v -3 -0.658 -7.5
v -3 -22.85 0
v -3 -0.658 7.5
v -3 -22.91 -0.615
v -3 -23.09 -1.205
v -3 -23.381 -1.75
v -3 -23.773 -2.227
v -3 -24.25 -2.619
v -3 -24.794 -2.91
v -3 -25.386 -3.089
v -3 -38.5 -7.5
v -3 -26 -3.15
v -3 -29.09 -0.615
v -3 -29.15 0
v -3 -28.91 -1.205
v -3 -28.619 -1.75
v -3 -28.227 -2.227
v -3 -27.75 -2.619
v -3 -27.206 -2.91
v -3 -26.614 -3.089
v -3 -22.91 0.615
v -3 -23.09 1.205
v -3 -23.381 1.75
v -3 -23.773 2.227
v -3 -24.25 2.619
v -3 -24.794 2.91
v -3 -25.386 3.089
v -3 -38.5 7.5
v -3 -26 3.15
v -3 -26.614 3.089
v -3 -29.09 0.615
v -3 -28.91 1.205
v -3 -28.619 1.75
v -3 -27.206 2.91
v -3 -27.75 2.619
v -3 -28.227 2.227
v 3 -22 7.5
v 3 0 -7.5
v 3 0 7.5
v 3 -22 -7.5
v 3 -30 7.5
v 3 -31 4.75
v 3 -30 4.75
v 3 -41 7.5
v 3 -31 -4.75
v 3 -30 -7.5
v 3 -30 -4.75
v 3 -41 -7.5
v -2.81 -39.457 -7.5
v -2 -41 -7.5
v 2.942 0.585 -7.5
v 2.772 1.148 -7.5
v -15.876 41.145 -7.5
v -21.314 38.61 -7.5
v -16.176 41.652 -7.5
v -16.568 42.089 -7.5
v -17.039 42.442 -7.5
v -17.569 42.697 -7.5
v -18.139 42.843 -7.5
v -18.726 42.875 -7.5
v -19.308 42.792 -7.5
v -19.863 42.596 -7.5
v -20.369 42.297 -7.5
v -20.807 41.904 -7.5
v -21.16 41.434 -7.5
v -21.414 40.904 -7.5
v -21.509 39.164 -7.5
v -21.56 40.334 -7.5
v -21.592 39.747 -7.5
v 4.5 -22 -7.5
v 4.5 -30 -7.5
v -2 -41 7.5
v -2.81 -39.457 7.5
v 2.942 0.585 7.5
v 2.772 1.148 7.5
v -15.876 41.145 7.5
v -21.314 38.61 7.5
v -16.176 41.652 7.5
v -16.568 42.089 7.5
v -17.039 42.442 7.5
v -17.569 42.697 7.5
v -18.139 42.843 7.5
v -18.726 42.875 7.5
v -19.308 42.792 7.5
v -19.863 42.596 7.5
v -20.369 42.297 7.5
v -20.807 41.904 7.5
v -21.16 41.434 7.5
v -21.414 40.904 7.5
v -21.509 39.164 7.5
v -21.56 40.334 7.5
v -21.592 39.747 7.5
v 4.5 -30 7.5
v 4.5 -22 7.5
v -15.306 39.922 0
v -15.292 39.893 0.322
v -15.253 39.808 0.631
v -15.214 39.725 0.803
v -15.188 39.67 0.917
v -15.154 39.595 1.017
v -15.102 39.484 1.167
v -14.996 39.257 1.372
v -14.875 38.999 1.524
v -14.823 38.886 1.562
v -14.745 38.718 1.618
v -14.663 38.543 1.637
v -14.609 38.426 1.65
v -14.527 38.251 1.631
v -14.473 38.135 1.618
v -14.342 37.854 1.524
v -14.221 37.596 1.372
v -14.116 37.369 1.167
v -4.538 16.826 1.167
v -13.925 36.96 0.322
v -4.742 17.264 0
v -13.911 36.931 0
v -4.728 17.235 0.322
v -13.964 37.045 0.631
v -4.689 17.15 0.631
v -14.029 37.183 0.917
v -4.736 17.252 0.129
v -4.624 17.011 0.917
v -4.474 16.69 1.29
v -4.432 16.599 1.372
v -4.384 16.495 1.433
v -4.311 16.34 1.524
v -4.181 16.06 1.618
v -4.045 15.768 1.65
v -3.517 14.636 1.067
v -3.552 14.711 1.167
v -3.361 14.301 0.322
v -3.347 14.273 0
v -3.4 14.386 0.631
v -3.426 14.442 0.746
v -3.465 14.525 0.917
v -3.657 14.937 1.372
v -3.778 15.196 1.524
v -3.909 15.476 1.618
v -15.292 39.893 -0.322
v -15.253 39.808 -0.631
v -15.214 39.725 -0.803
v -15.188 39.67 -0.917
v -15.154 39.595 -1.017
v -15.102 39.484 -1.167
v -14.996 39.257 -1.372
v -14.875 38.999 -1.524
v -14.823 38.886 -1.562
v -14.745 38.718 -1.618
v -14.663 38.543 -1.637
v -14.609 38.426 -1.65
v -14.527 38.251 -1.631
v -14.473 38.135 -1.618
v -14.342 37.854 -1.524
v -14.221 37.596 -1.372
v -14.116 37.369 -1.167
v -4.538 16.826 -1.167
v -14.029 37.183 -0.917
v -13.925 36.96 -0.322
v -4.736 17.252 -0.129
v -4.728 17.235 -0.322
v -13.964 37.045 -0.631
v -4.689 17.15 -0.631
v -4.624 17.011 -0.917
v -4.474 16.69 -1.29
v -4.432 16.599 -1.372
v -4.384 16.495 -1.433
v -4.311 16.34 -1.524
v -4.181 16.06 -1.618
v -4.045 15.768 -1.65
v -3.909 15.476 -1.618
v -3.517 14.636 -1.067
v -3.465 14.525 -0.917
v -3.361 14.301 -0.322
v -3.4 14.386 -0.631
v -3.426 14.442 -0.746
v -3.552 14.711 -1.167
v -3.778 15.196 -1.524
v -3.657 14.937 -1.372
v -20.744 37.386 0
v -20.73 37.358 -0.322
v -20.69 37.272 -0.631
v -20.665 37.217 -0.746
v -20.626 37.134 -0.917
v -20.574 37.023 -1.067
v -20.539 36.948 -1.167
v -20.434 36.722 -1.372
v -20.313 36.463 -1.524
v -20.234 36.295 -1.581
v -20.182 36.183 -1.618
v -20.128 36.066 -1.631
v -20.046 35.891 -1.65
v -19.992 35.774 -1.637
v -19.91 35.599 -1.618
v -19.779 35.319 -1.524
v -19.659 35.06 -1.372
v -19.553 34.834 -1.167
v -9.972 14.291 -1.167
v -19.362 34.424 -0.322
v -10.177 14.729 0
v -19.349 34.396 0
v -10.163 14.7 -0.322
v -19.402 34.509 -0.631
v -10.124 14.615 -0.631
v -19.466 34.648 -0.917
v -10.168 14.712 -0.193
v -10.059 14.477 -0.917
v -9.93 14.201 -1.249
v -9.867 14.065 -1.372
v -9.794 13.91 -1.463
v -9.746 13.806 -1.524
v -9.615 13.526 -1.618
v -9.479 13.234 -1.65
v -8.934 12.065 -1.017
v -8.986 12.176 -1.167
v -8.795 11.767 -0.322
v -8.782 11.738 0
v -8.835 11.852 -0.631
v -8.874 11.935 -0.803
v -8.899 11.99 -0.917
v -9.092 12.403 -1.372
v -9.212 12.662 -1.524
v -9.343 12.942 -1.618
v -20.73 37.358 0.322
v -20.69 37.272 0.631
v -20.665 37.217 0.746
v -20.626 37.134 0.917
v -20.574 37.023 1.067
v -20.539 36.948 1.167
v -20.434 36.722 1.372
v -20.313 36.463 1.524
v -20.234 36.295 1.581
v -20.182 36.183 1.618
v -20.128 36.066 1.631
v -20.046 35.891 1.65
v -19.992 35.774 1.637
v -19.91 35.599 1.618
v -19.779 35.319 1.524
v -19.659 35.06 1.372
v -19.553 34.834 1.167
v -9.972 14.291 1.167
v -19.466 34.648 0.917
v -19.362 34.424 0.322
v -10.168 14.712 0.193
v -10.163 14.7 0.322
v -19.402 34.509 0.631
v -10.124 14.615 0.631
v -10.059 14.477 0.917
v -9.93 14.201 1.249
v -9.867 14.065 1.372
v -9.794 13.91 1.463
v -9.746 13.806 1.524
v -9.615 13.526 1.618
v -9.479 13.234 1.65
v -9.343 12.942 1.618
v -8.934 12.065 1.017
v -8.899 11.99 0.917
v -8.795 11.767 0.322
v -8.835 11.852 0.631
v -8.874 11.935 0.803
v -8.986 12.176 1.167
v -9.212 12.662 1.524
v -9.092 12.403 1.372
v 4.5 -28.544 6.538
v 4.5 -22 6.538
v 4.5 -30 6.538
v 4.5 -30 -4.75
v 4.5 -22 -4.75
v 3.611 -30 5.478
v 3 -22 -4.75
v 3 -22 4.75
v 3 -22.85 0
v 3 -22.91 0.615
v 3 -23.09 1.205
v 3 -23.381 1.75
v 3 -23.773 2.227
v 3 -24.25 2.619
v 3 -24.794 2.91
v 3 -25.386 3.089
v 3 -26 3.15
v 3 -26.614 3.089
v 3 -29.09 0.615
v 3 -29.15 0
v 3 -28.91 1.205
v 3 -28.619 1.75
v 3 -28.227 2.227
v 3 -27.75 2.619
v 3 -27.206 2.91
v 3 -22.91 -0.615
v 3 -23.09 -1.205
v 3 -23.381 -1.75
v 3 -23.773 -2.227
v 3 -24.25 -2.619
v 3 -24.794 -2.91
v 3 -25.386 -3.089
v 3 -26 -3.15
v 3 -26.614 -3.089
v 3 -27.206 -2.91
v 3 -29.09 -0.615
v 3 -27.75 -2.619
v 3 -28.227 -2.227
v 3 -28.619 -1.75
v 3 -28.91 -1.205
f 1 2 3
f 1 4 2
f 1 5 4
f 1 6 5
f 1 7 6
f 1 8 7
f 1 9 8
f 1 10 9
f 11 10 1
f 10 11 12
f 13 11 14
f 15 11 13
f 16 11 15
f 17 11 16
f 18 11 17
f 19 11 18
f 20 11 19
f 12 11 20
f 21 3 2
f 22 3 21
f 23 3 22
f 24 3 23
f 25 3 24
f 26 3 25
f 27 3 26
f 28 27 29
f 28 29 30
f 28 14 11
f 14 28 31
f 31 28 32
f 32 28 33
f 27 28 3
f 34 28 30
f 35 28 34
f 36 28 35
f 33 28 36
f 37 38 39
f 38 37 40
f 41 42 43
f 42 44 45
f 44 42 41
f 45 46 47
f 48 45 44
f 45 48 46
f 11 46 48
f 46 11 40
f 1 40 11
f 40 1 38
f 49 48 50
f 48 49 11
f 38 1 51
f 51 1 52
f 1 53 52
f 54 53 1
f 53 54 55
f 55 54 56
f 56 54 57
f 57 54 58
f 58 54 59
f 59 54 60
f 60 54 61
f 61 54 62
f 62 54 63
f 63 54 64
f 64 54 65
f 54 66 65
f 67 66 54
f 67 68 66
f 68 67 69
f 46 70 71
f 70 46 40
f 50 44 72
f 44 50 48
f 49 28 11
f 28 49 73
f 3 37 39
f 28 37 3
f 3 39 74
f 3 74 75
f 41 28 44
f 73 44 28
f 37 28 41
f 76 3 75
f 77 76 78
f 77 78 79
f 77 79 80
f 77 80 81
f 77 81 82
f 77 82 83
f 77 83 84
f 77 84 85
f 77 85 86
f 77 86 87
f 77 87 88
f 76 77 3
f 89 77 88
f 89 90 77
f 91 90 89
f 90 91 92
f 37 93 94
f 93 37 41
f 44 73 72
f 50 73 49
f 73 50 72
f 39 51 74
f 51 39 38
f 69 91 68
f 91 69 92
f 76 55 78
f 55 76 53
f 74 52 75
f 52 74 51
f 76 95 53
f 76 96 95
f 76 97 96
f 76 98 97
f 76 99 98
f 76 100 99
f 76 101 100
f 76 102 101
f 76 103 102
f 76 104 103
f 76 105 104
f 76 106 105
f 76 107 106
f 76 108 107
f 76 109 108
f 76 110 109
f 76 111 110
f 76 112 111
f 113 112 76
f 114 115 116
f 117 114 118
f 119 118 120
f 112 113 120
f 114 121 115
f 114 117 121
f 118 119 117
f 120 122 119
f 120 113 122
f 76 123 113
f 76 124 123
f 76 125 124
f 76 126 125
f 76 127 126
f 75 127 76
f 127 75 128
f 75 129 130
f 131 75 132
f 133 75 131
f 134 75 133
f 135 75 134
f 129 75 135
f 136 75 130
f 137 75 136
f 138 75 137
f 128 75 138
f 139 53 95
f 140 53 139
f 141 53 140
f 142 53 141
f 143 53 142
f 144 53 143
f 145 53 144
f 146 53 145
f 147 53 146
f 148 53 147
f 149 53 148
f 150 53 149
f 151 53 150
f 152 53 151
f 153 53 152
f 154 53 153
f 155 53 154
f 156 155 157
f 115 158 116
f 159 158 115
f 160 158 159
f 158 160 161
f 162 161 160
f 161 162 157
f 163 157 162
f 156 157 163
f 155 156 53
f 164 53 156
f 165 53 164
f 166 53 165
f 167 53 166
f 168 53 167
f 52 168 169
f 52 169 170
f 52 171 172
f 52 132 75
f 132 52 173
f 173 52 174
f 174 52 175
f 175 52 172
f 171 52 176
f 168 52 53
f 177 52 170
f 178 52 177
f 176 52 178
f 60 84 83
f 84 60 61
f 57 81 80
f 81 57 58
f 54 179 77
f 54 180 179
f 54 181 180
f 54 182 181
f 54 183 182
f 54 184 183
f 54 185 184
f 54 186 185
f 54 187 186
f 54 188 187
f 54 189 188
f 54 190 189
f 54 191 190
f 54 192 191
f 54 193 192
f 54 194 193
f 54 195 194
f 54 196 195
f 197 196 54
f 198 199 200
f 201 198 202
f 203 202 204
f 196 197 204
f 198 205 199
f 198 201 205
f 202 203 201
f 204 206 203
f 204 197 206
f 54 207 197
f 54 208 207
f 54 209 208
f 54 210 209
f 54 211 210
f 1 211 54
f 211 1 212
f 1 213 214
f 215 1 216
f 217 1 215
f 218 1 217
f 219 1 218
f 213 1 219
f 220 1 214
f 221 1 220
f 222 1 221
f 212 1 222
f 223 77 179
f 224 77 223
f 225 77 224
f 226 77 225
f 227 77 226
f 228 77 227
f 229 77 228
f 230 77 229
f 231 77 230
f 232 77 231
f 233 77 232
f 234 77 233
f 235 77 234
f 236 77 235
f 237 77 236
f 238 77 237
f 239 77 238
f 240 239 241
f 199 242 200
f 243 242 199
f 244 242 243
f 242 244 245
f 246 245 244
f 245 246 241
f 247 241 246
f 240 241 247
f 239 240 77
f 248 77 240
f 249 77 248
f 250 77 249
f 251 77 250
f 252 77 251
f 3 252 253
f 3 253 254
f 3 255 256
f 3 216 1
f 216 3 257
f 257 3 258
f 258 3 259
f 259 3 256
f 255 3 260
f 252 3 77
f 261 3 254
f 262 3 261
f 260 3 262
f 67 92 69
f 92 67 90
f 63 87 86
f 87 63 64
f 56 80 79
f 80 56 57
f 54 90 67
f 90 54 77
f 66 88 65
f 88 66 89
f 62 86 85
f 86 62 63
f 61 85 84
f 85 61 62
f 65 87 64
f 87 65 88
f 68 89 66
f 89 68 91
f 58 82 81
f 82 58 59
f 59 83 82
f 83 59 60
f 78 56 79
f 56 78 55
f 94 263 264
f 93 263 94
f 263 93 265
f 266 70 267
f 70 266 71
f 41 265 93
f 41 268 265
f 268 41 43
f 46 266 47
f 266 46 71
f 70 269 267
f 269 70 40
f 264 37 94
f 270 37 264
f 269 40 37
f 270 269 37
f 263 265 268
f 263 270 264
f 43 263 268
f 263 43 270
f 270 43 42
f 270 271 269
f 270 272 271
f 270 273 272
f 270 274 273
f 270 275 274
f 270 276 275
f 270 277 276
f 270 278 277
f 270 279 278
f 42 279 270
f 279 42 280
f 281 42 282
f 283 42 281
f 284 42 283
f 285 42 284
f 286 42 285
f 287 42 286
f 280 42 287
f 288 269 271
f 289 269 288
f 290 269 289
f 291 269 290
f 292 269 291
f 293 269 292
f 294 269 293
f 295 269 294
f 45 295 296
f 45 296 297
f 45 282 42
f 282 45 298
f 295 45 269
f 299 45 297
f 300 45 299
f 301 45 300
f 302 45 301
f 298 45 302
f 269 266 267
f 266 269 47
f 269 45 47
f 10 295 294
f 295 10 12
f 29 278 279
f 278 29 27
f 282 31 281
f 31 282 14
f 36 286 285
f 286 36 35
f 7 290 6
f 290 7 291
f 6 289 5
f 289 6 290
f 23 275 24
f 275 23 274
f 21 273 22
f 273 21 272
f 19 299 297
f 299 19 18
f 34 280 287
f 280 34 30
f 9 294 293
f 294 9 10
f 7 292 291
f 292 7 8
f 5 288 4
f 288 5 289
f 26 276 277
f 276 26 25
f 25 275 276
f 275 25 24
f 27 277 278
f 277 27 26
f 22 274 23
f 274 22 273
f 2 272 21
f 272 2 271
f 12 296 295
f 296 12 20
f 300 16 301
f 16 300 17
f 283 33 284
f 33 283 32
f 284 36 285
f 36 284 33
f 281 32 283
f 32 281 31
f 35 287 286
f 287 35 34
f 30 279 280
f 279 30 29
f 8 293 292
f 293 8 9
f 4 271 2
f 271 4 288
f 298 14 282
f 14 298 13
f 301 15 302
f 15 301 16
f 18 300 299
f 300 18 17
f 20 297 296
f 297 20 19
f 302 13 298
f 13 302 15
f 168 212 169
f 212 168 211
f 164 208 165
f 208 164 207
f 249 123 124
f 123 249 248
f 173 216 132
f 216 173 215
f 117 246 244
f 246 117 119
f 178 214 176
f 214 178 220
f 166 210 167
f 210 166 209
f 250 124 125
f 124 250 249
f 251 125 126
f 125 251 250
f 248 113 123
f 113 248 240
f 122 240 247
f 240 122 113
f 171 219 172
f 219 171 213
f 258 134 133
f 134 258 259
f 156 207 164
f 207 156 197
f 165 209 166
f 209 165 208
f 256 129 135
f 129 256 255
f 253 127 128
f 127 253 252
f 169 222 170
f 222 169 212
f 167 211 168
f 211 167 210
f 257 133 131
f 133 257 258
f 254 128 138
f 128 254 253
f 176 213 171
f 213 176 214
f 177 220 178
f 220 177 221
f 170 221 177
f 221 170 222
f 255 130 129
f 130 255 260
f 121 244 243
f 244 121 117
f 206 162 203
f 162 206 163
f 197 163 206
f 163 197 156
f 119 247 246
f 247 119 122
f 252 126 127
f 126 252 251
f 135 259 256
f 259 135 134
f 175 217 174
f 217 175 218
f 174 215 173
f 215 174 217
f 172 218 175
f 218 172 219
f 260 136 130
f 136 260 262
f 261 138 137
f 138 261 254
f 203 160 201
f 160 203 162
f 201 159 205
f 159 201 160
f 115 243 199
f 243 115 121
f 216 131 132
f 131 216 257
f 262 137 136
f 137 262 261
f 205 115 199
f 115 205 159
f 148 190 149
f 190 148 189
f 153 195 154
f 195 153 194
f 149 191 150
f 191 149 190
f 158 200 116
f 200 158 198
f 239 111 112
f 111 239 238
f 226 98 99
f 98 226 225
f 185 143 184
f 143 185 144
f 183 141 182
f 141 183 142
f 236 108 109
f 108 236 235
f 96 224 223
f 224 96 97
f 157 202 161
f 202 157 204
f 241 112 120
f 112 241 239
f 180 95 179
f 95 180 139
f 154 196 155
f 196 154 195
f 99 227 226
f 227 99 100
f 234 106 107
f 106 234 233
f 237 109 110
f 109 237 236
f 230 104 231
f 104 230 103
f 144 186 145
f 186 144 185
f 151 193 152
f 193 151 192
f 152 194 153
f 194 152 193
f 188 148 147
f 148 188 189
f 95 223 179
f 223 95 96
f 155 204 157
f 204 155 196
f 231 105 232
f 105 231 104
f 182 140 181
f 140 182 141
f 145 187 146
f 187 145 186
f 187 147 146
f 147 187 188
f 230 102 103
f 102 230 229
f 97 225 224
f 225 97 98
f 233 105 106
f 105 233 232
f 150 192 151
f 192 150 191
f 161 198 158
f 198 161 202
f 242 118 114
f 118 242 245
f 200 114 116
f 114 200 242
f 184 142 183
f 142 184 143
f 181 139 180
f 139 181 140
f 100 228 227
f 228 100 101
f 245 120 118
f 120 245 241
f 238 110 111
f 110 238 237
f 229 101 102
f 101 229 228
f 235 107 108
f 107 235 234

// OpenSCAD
/* 
   === RebeliX BoX ===

   LCD holder
   GNU GPL v3
   Martin Neruda <neruda@RebeliX.cz>
   http://www.RebeliX.cz
*/

//include <../../configuration.scad>
include <../../inc/functions.scad>

part_thick = 6;
part_height = 15;
base_length = profile_width + 11;

// Delka ramena pro pridelani LCD
holder_length = 44;

// Uhel natoceni drzaku
angle = 25;

$fn=32;

M6_head_offset = 8; // pro M6x14

screw_distance = 25;

// LCD HEIGHT (z lcd_case.scad)
HEIGHT=82 - 11;

module lcd_holder_base()
{
  translate([0,-base_length/2,0]) rounded_box(part_thick,base_length,part_height,5,1,0,0,0);
  
  hull()
  {
    cylinder(d=part_thick,h=part_height,center=true);
    rotate([0,0,angle]) translate([0,holder_length,0]) cylinder(d=part_thick,h=part_height,center=true);
  }
  
  // Prichyceni na profil
  translate([part_thick/2,-base_length + profile_width/2,0]) cube([3,8,part_height],center=true);
}

module lcd_holder_cuts()
{
  // M6 sroub
  translate([0,-base_length + profile_width/2,0]) rotate([0,90,0]) cylinder(d=M6_screw_D, h=30, $fn = 32, center=true);
  
  // Vyrez pro profilovou matku
  translate([part_thick/2 + 3/2,-base_length + profile_width/2,0]) rotate([0,0,180]) profile_nut(10);
  
  // Otvory na prichyceni k LCD
  rotate([0,0,angle]) translate([0,16,0]) rotate([0,90,0]) cylinder(d=M3_screw_D,h=30,center=true);
  
  rotate([0,0,angle]) translate([0,16 + screw_distance,0]) rotate([0,90,0]) cylinder(d=M3_screw_D,h=30,center=true);
}

module lcd_holder()
{
  difference()
  {
	lcd_holder_base();
	lcd_holder_cuts();
  }
}

lcd_holder();
